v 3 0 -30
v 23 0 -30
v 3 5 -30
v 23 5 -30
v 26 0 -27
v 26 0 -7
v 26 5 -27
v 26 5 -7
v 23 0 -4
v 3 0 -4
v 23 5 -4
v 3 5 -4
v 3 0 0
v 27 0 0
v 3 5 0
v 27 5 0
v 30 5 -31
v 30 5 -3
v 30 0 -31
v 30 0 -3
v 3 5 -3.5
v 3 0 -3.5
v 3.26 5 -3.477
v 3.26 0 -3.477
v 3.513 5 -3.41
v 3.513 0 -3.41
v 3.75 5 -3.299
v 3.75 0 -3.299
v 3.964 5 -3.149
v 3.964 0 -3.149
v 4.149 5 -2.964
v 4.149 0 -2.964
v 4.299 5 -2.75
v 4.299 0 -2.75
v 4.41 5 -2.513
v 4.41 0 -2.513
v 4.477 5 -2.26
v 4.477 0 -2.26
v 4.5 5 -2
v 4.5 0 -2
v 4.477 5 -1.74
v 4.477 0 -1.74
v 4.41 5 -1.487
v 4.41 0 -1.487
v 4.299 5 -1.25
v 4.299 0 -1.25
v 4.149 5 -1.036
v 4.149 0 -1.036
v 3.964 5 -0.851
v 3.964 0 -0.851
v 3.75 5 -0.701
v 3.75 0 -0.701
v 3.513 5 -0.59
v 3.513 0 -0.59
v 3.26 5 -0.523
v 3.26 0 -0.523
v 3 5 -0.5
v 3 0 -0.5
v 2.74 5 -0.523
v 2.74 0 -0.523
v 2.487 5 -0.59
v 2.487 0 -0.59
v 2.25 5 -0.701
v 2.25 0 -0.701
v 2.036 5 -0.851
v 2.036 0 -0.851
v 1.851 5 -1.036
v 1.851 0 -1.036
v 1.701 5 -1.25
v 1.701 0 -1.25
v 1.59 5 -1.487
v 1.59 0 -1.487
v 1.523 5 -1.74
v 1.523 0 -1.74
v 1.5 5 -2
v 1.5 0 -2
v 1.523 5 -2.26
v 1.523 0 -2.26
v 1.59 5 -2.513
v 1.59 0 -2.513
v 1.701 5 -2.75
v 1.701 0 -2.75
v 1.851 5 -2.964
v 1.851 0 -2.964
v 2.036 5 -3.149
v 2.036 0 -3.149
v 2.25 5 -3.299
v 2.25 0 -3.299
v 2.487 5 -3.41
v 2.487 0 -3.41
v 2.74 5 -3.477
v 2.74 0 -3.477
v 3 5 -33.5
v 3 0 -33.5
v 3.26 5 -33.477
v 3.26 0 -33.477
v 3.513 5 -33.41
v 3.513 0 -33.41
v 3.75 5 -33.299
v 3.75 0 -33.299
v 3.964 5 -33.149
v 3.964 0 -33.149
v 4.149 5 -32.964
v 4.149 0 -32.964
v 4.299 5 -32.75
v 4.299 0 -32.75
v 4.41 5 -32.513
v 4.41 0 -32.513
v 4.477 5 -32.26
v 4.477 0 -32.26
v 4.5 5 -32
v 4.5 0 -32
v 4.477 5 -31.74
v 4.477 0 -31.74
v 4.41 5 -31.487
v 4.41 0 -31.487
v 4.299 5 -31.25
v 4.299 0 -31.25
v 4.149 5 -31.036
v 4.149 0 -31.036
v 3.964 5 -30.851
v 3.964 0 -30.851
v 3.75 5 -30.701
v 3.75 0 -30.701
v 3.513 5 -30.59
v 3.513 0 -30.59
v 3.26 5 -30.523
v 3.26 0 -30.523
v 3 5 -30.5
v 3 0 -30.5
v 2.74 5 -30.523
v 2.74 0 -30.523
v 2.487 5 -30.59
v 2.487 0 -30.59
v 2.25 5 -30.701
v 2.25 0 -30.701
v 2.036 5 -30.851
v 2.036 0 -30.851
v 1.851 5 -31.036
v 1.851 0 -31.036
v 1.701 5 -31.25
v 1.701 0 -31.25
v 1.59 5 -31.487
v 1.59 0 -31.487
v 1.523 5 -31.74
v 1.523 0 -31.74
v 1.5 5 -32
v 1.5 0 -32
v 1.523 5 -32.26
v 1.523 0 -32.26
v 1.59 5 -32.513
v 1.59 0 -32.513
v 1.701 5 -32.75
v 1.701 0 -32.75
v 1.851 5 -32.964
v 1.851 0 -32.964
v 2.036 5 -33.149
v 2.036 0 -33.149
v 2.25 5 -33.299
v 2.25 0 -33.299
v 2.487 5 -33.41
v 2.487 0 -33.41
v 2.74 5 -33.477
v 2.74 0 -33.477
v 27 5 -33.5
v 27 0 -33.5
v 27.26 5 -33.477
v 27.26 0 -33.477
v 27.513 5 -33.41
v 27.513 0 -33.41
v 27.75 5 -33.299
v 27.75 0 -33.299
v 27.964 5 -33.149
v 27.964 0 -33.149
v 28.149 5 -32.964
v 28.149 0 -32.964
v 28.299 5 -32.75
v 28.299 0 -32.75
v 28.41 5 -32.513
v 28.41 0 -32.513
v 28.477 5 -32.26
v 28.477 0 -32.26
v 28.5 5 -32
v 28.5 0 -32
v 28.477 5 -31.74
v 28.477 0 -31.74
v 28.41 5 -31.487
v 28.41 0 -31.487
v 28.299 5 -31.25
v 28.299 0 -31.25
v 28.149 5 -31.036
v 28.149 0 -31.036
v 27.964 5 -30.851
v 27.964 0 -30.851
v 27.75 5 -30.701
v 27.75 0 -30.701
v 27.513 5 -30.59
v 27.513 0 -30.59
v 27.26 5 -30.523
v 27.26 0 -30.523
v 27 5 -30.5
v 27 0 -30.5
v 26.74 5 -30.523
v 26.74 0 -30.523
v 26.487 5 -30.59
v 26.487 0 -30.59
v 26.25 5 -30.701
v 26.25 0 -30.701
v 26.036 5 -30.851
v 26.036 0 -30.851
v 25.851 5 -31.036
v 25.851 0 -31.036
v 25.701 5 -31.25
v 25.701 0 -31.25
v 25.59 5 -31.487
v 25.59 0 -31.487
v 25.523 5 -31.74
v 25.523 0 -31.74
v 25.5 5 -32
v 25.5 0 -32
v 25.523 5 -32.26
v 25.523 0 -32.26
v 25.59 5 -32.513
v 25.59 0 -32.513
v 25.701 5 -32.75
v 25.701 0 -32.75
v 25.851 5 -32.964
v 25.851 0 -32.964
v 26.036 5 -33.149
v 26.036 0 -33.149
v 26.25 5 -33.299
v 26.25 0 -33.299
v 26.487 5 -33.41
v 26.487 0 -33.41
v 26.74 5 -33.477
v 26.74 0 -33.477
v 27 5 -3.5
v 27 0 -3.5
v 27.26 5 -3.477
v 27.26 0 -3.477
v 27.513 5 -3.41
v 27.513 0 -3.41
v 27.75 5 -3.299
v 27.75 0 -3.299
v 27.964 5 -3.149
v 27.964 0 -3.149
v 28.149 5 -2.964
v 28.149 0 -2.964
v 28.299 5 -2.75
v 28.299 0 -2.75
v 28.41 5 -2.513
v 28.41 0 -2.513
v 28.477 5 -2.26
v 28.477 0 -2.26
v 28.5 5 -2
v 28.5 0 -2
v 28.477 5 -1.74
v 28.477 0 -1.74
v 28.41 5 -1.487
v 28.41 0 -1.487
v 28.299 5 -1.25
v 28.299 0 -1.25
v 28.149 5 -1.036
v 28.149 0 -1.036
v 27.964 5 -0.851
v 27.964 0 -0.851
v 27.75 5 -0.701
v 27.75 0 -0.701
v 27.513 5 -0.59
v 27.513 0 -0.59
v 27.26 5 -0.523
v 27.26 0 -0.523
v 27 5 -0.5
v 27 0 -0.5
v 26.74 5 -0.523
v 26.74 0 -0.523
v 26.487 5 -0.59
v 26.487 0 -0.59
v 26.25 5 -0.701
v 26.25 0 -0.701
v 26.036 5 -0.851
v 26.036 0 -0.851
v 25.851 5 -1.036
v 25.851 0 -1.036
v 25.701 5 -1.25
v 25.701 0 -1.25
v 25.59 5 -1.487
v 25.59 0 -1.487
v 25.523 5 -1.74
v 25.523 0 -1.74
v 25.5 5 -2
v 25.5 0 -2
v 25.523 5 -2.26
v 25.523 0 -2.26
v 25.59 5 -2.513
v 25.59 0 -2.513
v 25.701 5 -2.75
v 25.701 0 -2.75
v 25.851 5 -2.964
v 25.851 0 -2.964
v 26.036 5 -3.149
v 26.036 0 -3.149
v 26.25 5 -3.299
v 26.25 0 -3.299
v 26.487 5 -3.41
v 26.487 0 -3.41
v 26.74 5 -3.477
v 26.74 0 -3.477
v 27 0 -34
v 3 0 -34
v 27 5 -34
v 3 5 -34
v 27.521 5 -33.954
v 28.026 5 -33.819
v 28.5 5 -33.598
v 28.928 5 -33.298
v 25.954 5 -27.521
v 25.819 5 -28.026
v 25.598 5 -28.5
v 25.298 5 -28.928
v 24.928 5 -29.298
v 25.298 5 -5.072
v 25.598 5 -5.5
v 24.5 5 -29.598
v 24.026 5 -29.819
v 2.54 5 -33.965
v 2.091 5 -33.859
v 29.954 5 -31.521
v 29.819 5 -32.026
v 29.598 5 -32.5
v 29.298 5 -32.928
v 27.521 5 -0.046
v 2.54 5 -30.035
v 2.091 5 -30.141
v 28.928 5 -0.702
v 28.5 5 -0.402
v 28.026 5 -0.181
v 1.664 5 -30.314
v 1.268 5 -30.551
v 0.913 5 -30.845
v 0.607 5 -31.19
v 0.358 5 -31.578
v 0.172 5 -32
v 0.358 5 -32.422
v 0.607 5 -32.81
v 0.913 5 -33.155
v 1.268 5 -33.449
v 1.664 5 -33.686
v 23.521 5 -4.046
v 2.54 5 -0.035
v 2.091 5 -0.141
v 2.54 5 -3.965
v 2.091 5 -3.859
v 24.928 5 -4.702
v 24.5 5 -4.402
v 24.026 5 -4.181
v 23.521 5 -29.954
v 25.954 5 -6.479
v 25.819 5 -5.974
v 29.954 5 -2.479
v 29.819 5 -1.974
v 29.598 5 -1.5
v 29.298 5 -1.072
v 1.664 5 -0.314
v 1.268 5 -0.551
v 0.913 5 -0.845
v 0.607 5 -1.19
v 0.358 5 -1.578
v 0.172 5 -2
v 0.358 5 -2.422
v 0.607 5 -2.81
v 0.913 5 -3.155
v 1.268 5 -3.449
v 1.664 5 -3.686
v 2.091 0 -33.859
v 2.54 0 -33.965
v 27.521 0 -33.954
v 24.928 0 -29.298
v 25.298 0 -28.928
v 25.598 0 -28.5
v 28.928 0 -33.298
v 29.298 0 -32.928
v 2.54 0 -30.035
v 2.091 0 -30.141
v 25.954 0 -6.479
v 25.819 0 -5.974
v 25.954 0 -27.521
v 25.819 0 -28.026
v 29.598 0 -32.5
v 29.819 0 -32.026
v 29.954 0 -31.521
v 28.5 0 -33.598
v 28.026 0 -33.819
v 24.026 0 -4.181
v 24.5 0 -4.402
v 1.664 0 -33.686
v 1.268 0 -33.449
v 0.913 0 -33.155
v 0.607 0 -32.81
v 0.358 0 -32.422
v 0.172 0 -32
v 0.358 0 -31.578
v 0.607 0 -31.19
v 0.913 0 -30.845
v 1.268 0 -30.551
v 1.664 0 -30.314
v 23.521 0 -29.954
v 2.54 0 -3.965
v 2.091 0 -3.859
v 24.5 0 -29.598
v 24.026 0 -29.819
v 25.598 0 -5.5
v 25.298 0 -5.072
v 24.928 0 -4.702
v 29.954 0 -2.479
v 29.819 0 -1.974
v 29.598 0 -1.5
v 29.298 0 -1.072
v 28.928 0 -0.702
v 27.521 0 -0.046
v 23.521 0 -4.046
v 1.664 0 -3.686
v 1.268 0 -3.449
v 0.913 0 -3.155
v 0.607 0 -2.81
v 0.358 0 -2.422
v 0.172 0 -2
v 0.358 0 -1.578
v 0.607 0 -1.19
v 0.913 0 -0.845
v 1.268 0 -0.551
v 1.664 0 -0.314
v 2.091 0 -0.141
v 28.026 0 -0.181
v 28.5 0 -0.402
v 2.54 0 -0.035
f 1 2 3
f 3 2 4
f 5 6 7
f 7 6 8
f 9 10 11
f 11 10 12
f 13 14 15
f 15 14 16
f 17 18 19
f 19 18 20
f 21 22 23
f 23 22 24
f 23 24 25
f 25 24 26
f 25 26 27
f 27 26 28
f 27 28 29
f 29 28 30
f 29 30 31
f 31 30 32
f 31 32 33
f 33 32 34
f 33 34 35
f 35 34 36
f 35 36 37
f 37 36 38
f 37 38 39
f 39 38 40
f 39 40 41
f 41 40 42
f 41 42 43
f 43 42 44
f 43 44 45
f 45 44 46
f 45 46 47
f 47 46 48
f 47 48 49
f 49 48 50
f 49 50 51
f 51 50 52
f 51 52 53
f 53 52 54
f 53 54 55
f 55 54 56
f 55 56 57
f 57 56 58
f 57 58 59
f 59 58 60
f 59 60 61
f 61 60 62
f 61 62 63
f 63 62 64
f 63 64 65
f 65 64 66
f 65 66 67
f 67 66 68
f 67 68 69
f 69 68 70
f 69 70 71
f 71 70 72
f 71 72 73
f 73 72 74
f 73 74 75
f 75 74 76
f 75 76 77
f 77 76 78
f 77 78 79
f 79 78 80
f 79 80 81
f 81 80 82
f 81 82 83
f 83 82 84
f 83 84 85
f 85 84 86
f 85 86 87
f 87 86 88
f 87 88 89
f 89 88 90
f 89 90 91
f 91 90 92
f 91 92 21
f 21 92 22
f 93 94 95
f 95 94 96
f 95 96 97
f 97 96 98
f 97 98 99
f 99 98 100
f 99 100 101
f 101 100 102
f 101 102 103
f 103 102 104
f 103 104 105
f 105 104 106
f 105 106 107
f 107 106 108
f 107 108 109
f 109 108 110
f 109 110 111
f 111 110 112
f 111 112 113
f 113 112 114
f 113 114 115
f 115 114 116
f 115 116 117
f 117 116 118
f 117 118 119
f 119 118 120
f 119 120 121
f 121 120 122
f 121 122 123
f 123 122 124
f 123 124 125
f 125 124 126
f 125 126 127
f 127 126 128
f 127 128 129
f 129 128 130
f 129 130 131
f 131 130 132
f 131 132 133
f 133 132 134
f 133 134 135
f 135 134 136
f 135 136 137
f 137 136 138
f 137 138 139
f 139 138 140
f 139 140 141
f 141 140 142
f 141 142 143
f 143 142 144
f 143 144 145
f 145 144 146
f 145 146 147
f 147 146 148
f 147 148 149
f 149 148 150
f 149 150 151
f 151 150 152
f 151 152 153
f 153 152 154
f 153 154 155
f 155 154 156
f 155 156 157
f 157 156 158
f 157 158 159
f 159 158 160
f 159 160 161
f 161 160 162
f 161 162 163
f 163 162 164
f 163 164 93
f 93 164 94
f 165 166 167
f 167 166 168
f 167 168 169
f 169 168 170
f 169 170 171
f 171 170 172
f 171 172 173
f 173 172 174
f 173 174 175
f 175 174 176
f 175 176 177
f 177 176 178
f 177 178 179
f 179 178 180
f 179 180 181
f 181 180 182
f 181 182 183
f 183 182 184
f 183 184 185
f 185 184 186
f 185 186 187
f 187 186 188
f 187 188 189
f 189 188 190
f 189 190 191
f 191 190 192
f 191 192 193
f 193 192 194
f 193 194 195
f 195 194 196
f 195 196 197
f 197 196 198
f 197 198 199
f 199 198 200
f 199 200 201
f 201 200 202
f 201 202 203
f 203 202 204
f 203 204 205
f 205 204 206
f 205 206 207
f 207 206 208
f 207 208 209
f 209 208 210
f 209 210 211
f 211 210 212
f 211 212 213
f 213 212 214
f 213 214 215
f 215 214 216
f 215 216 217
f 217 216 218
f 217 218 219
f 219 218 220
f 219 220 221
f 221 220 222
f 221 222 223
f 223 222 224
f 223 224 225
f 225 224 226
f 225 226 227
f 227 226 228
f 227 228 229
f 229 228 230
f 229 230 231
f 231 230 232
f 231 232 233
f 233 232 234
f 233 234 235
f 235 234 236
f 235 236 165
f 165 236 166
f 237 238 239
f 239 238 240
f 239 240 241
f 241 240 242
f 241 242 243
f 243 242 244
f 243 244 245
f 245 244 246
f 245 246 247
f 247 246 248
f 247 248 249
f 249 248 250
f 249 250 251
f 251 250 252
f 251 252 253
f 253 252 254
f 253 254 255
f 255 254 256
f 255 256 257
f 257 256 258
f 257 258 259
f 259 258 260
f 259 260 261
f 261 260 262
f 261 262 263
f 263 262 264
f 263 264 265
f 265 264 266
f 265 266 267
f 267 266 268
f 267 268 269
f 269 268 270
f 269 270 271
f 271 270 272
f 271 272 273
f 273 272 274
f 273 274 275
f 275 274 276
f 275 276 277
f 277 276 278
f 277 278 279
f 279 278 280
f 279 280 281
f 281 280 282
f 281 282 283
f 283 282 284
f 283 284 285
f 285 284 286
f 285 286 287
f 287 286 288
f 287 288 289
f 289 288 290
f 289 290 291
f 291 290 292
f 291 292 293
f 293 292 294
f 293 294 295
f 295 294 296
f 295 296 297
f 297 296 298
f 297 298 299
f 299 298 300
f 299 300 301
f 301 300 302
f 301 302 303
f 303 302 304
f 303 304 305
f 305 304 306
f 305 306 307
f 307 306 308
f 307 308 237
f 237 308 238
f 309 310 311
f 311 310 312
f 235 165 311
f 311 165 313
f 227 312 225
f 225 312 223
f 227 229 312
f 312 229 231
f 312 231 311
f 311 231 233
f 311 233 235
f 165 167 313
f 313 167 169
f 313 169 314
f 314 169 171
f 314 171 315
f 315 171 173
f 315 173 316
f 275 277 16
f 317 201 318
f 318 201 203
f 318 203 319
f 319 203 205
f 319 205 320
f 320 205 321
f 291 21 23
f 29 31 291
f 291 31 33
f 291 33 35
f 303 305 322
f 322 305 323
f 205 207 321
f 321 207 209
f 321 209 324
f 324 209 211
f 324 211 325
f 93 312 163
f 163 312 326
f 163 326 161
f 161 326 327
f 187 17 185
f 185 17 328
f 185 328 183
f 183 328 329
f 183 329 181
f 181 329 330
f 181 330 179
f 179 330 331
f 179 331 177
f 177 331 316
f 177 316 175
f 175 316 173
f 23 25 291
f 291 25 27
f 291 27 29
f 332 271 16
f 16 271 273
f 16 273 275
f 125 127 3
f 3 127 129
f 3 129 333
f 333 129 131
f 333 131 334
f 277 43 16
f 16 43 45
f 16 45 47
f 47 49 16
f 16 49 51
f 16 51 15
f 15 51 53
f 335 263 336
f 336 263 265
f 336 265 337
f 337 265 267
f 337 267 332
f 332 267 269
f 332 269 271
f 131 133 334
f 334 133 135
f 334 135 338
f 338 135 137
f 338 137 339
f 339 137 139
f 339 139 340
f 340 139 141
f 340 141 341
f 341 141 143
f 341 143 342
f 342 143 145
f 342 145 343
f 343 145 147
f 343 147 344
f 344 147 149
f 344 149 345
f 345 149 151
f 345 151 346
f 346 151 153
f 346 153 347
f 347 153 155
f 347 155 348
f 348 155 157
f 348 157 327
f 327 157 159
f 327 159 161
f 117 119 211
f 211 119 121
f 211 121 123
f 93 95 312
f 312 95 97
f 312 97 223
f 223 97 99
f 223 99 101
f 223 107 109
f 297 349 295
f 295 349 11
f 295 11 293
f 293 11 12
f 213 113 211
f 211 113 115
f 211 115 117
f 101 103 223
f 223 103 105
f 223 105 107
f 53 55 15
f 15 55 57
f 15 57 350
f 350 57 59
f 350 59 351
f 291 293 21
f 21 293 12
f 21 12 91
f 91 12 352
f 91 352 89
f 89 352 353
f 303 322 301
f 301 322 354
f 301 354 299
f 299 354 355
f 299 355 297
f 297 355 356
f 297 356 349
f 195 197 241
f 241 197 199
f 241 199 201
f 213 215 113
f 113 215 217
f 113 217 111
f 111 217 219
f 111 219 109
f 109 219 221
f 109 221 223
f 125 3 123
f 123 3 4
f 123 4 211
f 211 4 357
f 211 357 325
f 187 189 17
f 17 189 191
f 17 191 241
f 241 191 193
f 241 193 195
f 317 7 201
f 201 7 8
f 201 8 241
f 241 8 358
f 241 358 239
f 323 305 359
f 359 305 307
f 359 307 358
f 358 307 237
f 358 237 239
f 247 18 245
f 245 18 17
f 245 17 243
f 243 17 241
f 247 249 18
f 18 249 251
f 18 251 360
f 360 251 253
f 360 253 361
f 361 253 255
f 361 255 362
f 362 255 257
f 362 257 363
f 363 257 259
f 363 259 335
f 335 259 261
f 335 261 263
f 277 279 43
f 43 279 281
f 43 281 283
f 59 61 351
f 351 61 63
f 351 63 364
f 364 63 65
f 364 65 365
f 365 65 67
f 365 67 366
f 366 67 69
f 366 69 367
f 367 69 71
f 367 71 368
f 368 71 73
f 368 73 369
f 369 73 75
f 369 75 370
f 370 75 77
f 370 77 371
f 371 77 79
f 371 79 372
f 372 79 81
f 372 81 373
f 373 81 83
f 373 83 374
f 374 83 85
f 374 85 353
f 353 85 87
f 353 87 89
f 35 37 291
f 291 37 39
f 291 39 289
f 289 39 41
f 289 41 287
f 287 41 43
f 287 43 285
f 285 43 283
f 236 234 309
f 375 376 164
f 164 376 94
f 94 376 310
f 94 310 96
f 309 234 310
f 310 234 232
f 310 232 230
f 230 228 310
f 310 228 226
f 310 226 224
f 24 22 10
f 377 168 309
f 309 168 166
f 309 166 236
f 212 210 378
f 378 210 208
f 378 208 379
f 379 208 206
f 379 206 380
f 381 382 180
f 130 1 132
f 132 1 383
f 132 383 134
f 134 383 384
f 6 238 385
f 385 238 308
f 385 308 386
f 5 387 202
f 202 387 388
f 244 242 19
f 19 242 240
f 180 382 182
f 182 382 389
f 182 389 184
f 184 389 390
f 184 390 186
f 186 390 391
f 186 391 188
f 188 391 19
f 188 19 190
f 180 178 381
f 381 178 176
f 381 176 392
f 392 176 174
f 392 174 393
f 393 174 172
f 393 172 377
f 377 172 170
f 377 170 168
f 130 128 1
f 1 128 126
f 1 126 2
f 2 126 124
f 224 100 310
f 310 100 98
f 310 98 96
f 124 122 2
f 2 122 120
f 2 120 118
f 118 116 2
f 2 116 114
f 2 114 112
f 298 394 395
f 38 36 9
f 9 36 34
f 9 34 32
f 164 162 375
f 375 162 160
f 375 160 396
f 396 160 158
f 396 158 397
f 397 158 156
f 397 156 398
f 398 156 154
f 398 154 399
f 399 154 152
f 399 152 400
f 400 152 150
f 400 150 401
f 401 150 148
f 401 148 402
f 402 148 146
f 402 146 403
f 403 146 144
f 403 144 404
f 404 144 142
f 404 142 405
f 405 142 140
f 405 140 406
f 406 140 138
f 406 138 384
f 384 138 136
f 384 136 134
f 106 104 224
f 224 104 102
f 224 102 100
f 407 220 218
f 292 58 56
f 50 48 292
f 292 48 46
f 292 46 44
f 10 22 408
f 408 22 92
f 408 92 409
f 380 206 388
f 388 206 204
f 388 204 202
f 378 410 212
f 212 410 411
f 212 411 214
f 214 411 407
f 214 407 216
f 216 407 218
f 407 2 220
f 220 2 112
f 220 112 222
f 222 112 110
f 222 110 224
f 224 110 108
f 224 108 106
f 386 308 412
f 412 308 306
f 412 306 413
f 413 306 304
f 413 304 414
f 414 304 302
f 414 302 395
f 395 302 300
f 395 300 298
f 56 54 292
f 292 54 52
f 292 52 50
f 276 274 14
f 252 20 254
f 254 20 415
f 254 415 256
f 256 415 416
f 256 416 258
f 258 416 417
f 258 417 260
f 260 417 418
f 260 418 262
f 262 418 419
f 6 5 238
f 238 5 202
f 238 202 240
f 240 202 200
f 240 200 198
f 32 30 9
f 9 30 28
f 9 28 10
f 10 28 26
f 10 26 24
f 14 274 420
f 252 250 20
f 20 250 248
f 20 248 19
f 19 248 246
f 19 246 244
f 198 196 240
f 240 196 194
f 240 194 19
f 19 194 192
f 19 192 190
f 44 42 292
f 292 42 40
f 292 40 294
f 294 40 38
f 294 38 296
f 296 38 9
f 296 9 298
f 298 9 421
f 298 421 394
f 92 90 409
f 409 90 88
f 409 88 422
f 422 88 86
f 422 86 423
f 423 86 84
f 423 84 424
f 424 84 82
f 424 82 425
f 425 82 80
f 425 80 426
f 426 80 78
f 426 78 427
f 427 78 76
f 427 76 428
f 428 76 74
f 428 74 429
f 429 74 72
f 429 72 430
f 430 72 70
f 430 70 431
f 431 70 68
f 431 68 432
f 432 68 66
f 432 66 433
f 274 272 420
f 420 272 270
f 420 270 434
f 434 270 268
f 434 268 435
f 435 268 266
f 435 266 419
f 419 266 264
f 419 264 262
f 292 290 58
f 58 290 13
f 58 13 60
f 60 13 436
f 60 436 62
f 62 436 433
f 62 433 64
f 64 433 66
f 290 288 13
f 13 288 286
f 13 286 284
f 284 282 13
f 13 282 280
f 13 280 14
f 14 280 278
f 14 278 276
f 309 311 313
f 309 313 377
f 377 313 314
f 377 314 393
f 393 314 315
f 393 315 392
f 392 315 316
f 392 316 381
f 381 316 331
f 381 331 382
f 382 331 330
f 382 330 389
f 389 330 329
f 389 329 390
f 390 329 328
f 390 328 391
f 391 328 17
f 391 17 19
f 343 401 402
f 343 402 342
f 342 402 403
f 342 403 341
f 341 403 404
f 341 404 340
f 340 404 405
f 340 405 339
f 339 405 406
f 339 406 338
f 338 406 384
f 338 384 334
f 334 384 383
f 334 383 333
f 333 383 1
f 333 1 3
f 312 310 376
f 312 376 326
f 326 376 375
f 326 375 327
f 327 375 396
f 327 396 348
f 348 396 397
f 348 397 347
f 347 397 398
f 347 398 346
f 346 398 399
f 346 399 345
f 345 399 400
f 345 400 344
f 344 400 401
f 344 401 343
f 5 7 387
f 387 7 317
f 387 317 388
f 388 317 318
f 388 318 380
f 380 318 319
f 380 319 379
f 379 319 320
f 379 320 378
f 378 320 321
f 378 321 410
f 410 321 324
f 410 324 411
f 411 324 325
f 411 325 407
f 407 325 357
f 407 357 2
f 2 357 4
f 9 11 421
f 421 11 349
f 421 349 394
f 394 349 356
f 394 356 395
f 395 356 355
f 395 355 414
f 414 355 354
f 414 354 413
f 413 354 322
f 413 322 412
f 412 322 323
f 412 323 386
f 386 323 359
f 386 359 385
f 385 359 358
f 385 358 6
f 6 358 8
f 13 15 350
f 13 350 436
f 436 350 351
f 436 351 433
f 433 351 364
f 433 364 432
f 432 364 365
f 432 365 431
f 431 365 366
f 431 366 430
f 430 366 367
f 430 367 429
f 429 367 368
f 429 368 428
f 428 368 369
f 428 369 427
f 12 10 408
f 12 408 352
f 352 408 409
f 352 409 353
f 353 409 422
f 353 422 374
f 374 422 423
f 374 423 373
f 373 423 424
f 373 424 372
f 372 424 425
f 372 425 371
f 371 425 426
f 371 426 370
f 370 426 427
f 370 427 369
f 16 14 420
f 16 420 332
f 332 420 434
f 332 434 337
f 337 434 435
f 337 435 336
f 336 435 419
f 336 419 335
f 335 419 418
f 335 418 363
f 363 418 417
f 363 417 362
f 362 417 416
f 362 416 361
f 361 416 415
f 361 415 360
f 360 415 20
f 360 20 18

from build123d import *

# Parameters (mm, degrees)
SKETCH1_R           = 1.5
BOSS_EXTRUDE1_DEPTH = 5
FILLET2_R           = 3


with BuildPart() as part:
    # Sketch1 → Boss-Extrude1 (new body)
    with BuildSketch(Plane(origin=(0, 0, 0), x_dir=(1, 0, 0), z_dir=(0, 1, 0))):
        Polygon((0, 30), (0, 34), (30, 34), (30, 0), (0, 0), (0, 4), (26, 4), (26, 30), align=None)
        with Locations(Location((27, 2, 0), (0, 0, 270))):
            Circle(SKETCH1_R, mode=Mode.SUBTRACT)
        with Locations(Location((27, 32, 0), (0, 0, 270))):
            Circle(SKETCH1_R, mode=Mode.SUBTRACT)
        with Locations(Location((3, 32, 0), (0, 0, 270))):
            Circle(SKETCH1_R, mode=Mode.SUBTRACT)
        with Locations(Location((3, 2, 0), (0, 0, 270))):
            Circle(SKETCH1_R, mode=Mode.SUBTRACT)
    extrude(amount=BOSS_EXTRUDE1_DEPTH)

    # Fillet2
    # the kernel refuses this fillet: 3 mm, written as the material it adds along each edge
    with BuildSketch(Plane(origin=(26, 0, -30), x_dir=(0, 0, 1), z_dir=(0, 1, 0)), Plane(origin=(26, 0, -4), x_dir=(-1, 0, 0), z_dir=(0, 1, 0))) as fillet2_piece_1:
        with BuildLine():
            CenterArc((FILLET2_R, -FILLET2_R), FILLET2_R, 90, 90)
            Line((0, -FILLET2_R), (0, 0))
            Line((0, 0), (FILLET2_R, 0))
        make_face()
    extrude(amount=5)
    # the kernel refuses this fillet: 3 mm, written as the material it takes off along each edge
    with BuildSketch(Plane(origin=(30, -7.5, -34), x_dir=(-1, 0, 0), z_dir=(0, 1, 0)), Plane(origin=(0, -7.5, -34), x_dir=(0, 0, 1), z_dir=(0, 1, 0)), Plane(origin=(0, -7.5, -4), x_dir=(0, 0, 1), z_dir=(0, 1, 0)), Plane(origin=(0, -7.5, 0), x_dir=(1, 0, 0), z_dir=(0, 1, 0)), Plane(origin=(30, -7.5, 0), x_dir=(0, 0, -1), z_dir=(0, 1, 0))) as fillet2_2_piece_1:
        with BuildLine():
            CenterArc((FILLET2_R, FILLET2_R), FILLET2_R, 180, 90)
            Line((0, FILLET2_R), (0, 0))
            Line((0, 0), (FILLET2_R, 0))
        make_face()
    extrude(amount=20, mode=Mode.SUBTRACT)
    with BuildSketch(Plane(origin=(0, -7.5, -30), x_dir=(0, 0, -1), z_dir=(0, 1, 0))) as fillet2_2_piece_2:
        with BuildLine():
            CenterArc((FILLET2_R, -FILLET2_R), FILLET2_R, 90, 90)
            Line((0, -FILLET2_R), (0, 0))
            Line((0, 0), (FILLET2_R, 0))
        make_face()
    extrude(amount=20, mode=Mode.SUBTRACT)


solid = part.part
